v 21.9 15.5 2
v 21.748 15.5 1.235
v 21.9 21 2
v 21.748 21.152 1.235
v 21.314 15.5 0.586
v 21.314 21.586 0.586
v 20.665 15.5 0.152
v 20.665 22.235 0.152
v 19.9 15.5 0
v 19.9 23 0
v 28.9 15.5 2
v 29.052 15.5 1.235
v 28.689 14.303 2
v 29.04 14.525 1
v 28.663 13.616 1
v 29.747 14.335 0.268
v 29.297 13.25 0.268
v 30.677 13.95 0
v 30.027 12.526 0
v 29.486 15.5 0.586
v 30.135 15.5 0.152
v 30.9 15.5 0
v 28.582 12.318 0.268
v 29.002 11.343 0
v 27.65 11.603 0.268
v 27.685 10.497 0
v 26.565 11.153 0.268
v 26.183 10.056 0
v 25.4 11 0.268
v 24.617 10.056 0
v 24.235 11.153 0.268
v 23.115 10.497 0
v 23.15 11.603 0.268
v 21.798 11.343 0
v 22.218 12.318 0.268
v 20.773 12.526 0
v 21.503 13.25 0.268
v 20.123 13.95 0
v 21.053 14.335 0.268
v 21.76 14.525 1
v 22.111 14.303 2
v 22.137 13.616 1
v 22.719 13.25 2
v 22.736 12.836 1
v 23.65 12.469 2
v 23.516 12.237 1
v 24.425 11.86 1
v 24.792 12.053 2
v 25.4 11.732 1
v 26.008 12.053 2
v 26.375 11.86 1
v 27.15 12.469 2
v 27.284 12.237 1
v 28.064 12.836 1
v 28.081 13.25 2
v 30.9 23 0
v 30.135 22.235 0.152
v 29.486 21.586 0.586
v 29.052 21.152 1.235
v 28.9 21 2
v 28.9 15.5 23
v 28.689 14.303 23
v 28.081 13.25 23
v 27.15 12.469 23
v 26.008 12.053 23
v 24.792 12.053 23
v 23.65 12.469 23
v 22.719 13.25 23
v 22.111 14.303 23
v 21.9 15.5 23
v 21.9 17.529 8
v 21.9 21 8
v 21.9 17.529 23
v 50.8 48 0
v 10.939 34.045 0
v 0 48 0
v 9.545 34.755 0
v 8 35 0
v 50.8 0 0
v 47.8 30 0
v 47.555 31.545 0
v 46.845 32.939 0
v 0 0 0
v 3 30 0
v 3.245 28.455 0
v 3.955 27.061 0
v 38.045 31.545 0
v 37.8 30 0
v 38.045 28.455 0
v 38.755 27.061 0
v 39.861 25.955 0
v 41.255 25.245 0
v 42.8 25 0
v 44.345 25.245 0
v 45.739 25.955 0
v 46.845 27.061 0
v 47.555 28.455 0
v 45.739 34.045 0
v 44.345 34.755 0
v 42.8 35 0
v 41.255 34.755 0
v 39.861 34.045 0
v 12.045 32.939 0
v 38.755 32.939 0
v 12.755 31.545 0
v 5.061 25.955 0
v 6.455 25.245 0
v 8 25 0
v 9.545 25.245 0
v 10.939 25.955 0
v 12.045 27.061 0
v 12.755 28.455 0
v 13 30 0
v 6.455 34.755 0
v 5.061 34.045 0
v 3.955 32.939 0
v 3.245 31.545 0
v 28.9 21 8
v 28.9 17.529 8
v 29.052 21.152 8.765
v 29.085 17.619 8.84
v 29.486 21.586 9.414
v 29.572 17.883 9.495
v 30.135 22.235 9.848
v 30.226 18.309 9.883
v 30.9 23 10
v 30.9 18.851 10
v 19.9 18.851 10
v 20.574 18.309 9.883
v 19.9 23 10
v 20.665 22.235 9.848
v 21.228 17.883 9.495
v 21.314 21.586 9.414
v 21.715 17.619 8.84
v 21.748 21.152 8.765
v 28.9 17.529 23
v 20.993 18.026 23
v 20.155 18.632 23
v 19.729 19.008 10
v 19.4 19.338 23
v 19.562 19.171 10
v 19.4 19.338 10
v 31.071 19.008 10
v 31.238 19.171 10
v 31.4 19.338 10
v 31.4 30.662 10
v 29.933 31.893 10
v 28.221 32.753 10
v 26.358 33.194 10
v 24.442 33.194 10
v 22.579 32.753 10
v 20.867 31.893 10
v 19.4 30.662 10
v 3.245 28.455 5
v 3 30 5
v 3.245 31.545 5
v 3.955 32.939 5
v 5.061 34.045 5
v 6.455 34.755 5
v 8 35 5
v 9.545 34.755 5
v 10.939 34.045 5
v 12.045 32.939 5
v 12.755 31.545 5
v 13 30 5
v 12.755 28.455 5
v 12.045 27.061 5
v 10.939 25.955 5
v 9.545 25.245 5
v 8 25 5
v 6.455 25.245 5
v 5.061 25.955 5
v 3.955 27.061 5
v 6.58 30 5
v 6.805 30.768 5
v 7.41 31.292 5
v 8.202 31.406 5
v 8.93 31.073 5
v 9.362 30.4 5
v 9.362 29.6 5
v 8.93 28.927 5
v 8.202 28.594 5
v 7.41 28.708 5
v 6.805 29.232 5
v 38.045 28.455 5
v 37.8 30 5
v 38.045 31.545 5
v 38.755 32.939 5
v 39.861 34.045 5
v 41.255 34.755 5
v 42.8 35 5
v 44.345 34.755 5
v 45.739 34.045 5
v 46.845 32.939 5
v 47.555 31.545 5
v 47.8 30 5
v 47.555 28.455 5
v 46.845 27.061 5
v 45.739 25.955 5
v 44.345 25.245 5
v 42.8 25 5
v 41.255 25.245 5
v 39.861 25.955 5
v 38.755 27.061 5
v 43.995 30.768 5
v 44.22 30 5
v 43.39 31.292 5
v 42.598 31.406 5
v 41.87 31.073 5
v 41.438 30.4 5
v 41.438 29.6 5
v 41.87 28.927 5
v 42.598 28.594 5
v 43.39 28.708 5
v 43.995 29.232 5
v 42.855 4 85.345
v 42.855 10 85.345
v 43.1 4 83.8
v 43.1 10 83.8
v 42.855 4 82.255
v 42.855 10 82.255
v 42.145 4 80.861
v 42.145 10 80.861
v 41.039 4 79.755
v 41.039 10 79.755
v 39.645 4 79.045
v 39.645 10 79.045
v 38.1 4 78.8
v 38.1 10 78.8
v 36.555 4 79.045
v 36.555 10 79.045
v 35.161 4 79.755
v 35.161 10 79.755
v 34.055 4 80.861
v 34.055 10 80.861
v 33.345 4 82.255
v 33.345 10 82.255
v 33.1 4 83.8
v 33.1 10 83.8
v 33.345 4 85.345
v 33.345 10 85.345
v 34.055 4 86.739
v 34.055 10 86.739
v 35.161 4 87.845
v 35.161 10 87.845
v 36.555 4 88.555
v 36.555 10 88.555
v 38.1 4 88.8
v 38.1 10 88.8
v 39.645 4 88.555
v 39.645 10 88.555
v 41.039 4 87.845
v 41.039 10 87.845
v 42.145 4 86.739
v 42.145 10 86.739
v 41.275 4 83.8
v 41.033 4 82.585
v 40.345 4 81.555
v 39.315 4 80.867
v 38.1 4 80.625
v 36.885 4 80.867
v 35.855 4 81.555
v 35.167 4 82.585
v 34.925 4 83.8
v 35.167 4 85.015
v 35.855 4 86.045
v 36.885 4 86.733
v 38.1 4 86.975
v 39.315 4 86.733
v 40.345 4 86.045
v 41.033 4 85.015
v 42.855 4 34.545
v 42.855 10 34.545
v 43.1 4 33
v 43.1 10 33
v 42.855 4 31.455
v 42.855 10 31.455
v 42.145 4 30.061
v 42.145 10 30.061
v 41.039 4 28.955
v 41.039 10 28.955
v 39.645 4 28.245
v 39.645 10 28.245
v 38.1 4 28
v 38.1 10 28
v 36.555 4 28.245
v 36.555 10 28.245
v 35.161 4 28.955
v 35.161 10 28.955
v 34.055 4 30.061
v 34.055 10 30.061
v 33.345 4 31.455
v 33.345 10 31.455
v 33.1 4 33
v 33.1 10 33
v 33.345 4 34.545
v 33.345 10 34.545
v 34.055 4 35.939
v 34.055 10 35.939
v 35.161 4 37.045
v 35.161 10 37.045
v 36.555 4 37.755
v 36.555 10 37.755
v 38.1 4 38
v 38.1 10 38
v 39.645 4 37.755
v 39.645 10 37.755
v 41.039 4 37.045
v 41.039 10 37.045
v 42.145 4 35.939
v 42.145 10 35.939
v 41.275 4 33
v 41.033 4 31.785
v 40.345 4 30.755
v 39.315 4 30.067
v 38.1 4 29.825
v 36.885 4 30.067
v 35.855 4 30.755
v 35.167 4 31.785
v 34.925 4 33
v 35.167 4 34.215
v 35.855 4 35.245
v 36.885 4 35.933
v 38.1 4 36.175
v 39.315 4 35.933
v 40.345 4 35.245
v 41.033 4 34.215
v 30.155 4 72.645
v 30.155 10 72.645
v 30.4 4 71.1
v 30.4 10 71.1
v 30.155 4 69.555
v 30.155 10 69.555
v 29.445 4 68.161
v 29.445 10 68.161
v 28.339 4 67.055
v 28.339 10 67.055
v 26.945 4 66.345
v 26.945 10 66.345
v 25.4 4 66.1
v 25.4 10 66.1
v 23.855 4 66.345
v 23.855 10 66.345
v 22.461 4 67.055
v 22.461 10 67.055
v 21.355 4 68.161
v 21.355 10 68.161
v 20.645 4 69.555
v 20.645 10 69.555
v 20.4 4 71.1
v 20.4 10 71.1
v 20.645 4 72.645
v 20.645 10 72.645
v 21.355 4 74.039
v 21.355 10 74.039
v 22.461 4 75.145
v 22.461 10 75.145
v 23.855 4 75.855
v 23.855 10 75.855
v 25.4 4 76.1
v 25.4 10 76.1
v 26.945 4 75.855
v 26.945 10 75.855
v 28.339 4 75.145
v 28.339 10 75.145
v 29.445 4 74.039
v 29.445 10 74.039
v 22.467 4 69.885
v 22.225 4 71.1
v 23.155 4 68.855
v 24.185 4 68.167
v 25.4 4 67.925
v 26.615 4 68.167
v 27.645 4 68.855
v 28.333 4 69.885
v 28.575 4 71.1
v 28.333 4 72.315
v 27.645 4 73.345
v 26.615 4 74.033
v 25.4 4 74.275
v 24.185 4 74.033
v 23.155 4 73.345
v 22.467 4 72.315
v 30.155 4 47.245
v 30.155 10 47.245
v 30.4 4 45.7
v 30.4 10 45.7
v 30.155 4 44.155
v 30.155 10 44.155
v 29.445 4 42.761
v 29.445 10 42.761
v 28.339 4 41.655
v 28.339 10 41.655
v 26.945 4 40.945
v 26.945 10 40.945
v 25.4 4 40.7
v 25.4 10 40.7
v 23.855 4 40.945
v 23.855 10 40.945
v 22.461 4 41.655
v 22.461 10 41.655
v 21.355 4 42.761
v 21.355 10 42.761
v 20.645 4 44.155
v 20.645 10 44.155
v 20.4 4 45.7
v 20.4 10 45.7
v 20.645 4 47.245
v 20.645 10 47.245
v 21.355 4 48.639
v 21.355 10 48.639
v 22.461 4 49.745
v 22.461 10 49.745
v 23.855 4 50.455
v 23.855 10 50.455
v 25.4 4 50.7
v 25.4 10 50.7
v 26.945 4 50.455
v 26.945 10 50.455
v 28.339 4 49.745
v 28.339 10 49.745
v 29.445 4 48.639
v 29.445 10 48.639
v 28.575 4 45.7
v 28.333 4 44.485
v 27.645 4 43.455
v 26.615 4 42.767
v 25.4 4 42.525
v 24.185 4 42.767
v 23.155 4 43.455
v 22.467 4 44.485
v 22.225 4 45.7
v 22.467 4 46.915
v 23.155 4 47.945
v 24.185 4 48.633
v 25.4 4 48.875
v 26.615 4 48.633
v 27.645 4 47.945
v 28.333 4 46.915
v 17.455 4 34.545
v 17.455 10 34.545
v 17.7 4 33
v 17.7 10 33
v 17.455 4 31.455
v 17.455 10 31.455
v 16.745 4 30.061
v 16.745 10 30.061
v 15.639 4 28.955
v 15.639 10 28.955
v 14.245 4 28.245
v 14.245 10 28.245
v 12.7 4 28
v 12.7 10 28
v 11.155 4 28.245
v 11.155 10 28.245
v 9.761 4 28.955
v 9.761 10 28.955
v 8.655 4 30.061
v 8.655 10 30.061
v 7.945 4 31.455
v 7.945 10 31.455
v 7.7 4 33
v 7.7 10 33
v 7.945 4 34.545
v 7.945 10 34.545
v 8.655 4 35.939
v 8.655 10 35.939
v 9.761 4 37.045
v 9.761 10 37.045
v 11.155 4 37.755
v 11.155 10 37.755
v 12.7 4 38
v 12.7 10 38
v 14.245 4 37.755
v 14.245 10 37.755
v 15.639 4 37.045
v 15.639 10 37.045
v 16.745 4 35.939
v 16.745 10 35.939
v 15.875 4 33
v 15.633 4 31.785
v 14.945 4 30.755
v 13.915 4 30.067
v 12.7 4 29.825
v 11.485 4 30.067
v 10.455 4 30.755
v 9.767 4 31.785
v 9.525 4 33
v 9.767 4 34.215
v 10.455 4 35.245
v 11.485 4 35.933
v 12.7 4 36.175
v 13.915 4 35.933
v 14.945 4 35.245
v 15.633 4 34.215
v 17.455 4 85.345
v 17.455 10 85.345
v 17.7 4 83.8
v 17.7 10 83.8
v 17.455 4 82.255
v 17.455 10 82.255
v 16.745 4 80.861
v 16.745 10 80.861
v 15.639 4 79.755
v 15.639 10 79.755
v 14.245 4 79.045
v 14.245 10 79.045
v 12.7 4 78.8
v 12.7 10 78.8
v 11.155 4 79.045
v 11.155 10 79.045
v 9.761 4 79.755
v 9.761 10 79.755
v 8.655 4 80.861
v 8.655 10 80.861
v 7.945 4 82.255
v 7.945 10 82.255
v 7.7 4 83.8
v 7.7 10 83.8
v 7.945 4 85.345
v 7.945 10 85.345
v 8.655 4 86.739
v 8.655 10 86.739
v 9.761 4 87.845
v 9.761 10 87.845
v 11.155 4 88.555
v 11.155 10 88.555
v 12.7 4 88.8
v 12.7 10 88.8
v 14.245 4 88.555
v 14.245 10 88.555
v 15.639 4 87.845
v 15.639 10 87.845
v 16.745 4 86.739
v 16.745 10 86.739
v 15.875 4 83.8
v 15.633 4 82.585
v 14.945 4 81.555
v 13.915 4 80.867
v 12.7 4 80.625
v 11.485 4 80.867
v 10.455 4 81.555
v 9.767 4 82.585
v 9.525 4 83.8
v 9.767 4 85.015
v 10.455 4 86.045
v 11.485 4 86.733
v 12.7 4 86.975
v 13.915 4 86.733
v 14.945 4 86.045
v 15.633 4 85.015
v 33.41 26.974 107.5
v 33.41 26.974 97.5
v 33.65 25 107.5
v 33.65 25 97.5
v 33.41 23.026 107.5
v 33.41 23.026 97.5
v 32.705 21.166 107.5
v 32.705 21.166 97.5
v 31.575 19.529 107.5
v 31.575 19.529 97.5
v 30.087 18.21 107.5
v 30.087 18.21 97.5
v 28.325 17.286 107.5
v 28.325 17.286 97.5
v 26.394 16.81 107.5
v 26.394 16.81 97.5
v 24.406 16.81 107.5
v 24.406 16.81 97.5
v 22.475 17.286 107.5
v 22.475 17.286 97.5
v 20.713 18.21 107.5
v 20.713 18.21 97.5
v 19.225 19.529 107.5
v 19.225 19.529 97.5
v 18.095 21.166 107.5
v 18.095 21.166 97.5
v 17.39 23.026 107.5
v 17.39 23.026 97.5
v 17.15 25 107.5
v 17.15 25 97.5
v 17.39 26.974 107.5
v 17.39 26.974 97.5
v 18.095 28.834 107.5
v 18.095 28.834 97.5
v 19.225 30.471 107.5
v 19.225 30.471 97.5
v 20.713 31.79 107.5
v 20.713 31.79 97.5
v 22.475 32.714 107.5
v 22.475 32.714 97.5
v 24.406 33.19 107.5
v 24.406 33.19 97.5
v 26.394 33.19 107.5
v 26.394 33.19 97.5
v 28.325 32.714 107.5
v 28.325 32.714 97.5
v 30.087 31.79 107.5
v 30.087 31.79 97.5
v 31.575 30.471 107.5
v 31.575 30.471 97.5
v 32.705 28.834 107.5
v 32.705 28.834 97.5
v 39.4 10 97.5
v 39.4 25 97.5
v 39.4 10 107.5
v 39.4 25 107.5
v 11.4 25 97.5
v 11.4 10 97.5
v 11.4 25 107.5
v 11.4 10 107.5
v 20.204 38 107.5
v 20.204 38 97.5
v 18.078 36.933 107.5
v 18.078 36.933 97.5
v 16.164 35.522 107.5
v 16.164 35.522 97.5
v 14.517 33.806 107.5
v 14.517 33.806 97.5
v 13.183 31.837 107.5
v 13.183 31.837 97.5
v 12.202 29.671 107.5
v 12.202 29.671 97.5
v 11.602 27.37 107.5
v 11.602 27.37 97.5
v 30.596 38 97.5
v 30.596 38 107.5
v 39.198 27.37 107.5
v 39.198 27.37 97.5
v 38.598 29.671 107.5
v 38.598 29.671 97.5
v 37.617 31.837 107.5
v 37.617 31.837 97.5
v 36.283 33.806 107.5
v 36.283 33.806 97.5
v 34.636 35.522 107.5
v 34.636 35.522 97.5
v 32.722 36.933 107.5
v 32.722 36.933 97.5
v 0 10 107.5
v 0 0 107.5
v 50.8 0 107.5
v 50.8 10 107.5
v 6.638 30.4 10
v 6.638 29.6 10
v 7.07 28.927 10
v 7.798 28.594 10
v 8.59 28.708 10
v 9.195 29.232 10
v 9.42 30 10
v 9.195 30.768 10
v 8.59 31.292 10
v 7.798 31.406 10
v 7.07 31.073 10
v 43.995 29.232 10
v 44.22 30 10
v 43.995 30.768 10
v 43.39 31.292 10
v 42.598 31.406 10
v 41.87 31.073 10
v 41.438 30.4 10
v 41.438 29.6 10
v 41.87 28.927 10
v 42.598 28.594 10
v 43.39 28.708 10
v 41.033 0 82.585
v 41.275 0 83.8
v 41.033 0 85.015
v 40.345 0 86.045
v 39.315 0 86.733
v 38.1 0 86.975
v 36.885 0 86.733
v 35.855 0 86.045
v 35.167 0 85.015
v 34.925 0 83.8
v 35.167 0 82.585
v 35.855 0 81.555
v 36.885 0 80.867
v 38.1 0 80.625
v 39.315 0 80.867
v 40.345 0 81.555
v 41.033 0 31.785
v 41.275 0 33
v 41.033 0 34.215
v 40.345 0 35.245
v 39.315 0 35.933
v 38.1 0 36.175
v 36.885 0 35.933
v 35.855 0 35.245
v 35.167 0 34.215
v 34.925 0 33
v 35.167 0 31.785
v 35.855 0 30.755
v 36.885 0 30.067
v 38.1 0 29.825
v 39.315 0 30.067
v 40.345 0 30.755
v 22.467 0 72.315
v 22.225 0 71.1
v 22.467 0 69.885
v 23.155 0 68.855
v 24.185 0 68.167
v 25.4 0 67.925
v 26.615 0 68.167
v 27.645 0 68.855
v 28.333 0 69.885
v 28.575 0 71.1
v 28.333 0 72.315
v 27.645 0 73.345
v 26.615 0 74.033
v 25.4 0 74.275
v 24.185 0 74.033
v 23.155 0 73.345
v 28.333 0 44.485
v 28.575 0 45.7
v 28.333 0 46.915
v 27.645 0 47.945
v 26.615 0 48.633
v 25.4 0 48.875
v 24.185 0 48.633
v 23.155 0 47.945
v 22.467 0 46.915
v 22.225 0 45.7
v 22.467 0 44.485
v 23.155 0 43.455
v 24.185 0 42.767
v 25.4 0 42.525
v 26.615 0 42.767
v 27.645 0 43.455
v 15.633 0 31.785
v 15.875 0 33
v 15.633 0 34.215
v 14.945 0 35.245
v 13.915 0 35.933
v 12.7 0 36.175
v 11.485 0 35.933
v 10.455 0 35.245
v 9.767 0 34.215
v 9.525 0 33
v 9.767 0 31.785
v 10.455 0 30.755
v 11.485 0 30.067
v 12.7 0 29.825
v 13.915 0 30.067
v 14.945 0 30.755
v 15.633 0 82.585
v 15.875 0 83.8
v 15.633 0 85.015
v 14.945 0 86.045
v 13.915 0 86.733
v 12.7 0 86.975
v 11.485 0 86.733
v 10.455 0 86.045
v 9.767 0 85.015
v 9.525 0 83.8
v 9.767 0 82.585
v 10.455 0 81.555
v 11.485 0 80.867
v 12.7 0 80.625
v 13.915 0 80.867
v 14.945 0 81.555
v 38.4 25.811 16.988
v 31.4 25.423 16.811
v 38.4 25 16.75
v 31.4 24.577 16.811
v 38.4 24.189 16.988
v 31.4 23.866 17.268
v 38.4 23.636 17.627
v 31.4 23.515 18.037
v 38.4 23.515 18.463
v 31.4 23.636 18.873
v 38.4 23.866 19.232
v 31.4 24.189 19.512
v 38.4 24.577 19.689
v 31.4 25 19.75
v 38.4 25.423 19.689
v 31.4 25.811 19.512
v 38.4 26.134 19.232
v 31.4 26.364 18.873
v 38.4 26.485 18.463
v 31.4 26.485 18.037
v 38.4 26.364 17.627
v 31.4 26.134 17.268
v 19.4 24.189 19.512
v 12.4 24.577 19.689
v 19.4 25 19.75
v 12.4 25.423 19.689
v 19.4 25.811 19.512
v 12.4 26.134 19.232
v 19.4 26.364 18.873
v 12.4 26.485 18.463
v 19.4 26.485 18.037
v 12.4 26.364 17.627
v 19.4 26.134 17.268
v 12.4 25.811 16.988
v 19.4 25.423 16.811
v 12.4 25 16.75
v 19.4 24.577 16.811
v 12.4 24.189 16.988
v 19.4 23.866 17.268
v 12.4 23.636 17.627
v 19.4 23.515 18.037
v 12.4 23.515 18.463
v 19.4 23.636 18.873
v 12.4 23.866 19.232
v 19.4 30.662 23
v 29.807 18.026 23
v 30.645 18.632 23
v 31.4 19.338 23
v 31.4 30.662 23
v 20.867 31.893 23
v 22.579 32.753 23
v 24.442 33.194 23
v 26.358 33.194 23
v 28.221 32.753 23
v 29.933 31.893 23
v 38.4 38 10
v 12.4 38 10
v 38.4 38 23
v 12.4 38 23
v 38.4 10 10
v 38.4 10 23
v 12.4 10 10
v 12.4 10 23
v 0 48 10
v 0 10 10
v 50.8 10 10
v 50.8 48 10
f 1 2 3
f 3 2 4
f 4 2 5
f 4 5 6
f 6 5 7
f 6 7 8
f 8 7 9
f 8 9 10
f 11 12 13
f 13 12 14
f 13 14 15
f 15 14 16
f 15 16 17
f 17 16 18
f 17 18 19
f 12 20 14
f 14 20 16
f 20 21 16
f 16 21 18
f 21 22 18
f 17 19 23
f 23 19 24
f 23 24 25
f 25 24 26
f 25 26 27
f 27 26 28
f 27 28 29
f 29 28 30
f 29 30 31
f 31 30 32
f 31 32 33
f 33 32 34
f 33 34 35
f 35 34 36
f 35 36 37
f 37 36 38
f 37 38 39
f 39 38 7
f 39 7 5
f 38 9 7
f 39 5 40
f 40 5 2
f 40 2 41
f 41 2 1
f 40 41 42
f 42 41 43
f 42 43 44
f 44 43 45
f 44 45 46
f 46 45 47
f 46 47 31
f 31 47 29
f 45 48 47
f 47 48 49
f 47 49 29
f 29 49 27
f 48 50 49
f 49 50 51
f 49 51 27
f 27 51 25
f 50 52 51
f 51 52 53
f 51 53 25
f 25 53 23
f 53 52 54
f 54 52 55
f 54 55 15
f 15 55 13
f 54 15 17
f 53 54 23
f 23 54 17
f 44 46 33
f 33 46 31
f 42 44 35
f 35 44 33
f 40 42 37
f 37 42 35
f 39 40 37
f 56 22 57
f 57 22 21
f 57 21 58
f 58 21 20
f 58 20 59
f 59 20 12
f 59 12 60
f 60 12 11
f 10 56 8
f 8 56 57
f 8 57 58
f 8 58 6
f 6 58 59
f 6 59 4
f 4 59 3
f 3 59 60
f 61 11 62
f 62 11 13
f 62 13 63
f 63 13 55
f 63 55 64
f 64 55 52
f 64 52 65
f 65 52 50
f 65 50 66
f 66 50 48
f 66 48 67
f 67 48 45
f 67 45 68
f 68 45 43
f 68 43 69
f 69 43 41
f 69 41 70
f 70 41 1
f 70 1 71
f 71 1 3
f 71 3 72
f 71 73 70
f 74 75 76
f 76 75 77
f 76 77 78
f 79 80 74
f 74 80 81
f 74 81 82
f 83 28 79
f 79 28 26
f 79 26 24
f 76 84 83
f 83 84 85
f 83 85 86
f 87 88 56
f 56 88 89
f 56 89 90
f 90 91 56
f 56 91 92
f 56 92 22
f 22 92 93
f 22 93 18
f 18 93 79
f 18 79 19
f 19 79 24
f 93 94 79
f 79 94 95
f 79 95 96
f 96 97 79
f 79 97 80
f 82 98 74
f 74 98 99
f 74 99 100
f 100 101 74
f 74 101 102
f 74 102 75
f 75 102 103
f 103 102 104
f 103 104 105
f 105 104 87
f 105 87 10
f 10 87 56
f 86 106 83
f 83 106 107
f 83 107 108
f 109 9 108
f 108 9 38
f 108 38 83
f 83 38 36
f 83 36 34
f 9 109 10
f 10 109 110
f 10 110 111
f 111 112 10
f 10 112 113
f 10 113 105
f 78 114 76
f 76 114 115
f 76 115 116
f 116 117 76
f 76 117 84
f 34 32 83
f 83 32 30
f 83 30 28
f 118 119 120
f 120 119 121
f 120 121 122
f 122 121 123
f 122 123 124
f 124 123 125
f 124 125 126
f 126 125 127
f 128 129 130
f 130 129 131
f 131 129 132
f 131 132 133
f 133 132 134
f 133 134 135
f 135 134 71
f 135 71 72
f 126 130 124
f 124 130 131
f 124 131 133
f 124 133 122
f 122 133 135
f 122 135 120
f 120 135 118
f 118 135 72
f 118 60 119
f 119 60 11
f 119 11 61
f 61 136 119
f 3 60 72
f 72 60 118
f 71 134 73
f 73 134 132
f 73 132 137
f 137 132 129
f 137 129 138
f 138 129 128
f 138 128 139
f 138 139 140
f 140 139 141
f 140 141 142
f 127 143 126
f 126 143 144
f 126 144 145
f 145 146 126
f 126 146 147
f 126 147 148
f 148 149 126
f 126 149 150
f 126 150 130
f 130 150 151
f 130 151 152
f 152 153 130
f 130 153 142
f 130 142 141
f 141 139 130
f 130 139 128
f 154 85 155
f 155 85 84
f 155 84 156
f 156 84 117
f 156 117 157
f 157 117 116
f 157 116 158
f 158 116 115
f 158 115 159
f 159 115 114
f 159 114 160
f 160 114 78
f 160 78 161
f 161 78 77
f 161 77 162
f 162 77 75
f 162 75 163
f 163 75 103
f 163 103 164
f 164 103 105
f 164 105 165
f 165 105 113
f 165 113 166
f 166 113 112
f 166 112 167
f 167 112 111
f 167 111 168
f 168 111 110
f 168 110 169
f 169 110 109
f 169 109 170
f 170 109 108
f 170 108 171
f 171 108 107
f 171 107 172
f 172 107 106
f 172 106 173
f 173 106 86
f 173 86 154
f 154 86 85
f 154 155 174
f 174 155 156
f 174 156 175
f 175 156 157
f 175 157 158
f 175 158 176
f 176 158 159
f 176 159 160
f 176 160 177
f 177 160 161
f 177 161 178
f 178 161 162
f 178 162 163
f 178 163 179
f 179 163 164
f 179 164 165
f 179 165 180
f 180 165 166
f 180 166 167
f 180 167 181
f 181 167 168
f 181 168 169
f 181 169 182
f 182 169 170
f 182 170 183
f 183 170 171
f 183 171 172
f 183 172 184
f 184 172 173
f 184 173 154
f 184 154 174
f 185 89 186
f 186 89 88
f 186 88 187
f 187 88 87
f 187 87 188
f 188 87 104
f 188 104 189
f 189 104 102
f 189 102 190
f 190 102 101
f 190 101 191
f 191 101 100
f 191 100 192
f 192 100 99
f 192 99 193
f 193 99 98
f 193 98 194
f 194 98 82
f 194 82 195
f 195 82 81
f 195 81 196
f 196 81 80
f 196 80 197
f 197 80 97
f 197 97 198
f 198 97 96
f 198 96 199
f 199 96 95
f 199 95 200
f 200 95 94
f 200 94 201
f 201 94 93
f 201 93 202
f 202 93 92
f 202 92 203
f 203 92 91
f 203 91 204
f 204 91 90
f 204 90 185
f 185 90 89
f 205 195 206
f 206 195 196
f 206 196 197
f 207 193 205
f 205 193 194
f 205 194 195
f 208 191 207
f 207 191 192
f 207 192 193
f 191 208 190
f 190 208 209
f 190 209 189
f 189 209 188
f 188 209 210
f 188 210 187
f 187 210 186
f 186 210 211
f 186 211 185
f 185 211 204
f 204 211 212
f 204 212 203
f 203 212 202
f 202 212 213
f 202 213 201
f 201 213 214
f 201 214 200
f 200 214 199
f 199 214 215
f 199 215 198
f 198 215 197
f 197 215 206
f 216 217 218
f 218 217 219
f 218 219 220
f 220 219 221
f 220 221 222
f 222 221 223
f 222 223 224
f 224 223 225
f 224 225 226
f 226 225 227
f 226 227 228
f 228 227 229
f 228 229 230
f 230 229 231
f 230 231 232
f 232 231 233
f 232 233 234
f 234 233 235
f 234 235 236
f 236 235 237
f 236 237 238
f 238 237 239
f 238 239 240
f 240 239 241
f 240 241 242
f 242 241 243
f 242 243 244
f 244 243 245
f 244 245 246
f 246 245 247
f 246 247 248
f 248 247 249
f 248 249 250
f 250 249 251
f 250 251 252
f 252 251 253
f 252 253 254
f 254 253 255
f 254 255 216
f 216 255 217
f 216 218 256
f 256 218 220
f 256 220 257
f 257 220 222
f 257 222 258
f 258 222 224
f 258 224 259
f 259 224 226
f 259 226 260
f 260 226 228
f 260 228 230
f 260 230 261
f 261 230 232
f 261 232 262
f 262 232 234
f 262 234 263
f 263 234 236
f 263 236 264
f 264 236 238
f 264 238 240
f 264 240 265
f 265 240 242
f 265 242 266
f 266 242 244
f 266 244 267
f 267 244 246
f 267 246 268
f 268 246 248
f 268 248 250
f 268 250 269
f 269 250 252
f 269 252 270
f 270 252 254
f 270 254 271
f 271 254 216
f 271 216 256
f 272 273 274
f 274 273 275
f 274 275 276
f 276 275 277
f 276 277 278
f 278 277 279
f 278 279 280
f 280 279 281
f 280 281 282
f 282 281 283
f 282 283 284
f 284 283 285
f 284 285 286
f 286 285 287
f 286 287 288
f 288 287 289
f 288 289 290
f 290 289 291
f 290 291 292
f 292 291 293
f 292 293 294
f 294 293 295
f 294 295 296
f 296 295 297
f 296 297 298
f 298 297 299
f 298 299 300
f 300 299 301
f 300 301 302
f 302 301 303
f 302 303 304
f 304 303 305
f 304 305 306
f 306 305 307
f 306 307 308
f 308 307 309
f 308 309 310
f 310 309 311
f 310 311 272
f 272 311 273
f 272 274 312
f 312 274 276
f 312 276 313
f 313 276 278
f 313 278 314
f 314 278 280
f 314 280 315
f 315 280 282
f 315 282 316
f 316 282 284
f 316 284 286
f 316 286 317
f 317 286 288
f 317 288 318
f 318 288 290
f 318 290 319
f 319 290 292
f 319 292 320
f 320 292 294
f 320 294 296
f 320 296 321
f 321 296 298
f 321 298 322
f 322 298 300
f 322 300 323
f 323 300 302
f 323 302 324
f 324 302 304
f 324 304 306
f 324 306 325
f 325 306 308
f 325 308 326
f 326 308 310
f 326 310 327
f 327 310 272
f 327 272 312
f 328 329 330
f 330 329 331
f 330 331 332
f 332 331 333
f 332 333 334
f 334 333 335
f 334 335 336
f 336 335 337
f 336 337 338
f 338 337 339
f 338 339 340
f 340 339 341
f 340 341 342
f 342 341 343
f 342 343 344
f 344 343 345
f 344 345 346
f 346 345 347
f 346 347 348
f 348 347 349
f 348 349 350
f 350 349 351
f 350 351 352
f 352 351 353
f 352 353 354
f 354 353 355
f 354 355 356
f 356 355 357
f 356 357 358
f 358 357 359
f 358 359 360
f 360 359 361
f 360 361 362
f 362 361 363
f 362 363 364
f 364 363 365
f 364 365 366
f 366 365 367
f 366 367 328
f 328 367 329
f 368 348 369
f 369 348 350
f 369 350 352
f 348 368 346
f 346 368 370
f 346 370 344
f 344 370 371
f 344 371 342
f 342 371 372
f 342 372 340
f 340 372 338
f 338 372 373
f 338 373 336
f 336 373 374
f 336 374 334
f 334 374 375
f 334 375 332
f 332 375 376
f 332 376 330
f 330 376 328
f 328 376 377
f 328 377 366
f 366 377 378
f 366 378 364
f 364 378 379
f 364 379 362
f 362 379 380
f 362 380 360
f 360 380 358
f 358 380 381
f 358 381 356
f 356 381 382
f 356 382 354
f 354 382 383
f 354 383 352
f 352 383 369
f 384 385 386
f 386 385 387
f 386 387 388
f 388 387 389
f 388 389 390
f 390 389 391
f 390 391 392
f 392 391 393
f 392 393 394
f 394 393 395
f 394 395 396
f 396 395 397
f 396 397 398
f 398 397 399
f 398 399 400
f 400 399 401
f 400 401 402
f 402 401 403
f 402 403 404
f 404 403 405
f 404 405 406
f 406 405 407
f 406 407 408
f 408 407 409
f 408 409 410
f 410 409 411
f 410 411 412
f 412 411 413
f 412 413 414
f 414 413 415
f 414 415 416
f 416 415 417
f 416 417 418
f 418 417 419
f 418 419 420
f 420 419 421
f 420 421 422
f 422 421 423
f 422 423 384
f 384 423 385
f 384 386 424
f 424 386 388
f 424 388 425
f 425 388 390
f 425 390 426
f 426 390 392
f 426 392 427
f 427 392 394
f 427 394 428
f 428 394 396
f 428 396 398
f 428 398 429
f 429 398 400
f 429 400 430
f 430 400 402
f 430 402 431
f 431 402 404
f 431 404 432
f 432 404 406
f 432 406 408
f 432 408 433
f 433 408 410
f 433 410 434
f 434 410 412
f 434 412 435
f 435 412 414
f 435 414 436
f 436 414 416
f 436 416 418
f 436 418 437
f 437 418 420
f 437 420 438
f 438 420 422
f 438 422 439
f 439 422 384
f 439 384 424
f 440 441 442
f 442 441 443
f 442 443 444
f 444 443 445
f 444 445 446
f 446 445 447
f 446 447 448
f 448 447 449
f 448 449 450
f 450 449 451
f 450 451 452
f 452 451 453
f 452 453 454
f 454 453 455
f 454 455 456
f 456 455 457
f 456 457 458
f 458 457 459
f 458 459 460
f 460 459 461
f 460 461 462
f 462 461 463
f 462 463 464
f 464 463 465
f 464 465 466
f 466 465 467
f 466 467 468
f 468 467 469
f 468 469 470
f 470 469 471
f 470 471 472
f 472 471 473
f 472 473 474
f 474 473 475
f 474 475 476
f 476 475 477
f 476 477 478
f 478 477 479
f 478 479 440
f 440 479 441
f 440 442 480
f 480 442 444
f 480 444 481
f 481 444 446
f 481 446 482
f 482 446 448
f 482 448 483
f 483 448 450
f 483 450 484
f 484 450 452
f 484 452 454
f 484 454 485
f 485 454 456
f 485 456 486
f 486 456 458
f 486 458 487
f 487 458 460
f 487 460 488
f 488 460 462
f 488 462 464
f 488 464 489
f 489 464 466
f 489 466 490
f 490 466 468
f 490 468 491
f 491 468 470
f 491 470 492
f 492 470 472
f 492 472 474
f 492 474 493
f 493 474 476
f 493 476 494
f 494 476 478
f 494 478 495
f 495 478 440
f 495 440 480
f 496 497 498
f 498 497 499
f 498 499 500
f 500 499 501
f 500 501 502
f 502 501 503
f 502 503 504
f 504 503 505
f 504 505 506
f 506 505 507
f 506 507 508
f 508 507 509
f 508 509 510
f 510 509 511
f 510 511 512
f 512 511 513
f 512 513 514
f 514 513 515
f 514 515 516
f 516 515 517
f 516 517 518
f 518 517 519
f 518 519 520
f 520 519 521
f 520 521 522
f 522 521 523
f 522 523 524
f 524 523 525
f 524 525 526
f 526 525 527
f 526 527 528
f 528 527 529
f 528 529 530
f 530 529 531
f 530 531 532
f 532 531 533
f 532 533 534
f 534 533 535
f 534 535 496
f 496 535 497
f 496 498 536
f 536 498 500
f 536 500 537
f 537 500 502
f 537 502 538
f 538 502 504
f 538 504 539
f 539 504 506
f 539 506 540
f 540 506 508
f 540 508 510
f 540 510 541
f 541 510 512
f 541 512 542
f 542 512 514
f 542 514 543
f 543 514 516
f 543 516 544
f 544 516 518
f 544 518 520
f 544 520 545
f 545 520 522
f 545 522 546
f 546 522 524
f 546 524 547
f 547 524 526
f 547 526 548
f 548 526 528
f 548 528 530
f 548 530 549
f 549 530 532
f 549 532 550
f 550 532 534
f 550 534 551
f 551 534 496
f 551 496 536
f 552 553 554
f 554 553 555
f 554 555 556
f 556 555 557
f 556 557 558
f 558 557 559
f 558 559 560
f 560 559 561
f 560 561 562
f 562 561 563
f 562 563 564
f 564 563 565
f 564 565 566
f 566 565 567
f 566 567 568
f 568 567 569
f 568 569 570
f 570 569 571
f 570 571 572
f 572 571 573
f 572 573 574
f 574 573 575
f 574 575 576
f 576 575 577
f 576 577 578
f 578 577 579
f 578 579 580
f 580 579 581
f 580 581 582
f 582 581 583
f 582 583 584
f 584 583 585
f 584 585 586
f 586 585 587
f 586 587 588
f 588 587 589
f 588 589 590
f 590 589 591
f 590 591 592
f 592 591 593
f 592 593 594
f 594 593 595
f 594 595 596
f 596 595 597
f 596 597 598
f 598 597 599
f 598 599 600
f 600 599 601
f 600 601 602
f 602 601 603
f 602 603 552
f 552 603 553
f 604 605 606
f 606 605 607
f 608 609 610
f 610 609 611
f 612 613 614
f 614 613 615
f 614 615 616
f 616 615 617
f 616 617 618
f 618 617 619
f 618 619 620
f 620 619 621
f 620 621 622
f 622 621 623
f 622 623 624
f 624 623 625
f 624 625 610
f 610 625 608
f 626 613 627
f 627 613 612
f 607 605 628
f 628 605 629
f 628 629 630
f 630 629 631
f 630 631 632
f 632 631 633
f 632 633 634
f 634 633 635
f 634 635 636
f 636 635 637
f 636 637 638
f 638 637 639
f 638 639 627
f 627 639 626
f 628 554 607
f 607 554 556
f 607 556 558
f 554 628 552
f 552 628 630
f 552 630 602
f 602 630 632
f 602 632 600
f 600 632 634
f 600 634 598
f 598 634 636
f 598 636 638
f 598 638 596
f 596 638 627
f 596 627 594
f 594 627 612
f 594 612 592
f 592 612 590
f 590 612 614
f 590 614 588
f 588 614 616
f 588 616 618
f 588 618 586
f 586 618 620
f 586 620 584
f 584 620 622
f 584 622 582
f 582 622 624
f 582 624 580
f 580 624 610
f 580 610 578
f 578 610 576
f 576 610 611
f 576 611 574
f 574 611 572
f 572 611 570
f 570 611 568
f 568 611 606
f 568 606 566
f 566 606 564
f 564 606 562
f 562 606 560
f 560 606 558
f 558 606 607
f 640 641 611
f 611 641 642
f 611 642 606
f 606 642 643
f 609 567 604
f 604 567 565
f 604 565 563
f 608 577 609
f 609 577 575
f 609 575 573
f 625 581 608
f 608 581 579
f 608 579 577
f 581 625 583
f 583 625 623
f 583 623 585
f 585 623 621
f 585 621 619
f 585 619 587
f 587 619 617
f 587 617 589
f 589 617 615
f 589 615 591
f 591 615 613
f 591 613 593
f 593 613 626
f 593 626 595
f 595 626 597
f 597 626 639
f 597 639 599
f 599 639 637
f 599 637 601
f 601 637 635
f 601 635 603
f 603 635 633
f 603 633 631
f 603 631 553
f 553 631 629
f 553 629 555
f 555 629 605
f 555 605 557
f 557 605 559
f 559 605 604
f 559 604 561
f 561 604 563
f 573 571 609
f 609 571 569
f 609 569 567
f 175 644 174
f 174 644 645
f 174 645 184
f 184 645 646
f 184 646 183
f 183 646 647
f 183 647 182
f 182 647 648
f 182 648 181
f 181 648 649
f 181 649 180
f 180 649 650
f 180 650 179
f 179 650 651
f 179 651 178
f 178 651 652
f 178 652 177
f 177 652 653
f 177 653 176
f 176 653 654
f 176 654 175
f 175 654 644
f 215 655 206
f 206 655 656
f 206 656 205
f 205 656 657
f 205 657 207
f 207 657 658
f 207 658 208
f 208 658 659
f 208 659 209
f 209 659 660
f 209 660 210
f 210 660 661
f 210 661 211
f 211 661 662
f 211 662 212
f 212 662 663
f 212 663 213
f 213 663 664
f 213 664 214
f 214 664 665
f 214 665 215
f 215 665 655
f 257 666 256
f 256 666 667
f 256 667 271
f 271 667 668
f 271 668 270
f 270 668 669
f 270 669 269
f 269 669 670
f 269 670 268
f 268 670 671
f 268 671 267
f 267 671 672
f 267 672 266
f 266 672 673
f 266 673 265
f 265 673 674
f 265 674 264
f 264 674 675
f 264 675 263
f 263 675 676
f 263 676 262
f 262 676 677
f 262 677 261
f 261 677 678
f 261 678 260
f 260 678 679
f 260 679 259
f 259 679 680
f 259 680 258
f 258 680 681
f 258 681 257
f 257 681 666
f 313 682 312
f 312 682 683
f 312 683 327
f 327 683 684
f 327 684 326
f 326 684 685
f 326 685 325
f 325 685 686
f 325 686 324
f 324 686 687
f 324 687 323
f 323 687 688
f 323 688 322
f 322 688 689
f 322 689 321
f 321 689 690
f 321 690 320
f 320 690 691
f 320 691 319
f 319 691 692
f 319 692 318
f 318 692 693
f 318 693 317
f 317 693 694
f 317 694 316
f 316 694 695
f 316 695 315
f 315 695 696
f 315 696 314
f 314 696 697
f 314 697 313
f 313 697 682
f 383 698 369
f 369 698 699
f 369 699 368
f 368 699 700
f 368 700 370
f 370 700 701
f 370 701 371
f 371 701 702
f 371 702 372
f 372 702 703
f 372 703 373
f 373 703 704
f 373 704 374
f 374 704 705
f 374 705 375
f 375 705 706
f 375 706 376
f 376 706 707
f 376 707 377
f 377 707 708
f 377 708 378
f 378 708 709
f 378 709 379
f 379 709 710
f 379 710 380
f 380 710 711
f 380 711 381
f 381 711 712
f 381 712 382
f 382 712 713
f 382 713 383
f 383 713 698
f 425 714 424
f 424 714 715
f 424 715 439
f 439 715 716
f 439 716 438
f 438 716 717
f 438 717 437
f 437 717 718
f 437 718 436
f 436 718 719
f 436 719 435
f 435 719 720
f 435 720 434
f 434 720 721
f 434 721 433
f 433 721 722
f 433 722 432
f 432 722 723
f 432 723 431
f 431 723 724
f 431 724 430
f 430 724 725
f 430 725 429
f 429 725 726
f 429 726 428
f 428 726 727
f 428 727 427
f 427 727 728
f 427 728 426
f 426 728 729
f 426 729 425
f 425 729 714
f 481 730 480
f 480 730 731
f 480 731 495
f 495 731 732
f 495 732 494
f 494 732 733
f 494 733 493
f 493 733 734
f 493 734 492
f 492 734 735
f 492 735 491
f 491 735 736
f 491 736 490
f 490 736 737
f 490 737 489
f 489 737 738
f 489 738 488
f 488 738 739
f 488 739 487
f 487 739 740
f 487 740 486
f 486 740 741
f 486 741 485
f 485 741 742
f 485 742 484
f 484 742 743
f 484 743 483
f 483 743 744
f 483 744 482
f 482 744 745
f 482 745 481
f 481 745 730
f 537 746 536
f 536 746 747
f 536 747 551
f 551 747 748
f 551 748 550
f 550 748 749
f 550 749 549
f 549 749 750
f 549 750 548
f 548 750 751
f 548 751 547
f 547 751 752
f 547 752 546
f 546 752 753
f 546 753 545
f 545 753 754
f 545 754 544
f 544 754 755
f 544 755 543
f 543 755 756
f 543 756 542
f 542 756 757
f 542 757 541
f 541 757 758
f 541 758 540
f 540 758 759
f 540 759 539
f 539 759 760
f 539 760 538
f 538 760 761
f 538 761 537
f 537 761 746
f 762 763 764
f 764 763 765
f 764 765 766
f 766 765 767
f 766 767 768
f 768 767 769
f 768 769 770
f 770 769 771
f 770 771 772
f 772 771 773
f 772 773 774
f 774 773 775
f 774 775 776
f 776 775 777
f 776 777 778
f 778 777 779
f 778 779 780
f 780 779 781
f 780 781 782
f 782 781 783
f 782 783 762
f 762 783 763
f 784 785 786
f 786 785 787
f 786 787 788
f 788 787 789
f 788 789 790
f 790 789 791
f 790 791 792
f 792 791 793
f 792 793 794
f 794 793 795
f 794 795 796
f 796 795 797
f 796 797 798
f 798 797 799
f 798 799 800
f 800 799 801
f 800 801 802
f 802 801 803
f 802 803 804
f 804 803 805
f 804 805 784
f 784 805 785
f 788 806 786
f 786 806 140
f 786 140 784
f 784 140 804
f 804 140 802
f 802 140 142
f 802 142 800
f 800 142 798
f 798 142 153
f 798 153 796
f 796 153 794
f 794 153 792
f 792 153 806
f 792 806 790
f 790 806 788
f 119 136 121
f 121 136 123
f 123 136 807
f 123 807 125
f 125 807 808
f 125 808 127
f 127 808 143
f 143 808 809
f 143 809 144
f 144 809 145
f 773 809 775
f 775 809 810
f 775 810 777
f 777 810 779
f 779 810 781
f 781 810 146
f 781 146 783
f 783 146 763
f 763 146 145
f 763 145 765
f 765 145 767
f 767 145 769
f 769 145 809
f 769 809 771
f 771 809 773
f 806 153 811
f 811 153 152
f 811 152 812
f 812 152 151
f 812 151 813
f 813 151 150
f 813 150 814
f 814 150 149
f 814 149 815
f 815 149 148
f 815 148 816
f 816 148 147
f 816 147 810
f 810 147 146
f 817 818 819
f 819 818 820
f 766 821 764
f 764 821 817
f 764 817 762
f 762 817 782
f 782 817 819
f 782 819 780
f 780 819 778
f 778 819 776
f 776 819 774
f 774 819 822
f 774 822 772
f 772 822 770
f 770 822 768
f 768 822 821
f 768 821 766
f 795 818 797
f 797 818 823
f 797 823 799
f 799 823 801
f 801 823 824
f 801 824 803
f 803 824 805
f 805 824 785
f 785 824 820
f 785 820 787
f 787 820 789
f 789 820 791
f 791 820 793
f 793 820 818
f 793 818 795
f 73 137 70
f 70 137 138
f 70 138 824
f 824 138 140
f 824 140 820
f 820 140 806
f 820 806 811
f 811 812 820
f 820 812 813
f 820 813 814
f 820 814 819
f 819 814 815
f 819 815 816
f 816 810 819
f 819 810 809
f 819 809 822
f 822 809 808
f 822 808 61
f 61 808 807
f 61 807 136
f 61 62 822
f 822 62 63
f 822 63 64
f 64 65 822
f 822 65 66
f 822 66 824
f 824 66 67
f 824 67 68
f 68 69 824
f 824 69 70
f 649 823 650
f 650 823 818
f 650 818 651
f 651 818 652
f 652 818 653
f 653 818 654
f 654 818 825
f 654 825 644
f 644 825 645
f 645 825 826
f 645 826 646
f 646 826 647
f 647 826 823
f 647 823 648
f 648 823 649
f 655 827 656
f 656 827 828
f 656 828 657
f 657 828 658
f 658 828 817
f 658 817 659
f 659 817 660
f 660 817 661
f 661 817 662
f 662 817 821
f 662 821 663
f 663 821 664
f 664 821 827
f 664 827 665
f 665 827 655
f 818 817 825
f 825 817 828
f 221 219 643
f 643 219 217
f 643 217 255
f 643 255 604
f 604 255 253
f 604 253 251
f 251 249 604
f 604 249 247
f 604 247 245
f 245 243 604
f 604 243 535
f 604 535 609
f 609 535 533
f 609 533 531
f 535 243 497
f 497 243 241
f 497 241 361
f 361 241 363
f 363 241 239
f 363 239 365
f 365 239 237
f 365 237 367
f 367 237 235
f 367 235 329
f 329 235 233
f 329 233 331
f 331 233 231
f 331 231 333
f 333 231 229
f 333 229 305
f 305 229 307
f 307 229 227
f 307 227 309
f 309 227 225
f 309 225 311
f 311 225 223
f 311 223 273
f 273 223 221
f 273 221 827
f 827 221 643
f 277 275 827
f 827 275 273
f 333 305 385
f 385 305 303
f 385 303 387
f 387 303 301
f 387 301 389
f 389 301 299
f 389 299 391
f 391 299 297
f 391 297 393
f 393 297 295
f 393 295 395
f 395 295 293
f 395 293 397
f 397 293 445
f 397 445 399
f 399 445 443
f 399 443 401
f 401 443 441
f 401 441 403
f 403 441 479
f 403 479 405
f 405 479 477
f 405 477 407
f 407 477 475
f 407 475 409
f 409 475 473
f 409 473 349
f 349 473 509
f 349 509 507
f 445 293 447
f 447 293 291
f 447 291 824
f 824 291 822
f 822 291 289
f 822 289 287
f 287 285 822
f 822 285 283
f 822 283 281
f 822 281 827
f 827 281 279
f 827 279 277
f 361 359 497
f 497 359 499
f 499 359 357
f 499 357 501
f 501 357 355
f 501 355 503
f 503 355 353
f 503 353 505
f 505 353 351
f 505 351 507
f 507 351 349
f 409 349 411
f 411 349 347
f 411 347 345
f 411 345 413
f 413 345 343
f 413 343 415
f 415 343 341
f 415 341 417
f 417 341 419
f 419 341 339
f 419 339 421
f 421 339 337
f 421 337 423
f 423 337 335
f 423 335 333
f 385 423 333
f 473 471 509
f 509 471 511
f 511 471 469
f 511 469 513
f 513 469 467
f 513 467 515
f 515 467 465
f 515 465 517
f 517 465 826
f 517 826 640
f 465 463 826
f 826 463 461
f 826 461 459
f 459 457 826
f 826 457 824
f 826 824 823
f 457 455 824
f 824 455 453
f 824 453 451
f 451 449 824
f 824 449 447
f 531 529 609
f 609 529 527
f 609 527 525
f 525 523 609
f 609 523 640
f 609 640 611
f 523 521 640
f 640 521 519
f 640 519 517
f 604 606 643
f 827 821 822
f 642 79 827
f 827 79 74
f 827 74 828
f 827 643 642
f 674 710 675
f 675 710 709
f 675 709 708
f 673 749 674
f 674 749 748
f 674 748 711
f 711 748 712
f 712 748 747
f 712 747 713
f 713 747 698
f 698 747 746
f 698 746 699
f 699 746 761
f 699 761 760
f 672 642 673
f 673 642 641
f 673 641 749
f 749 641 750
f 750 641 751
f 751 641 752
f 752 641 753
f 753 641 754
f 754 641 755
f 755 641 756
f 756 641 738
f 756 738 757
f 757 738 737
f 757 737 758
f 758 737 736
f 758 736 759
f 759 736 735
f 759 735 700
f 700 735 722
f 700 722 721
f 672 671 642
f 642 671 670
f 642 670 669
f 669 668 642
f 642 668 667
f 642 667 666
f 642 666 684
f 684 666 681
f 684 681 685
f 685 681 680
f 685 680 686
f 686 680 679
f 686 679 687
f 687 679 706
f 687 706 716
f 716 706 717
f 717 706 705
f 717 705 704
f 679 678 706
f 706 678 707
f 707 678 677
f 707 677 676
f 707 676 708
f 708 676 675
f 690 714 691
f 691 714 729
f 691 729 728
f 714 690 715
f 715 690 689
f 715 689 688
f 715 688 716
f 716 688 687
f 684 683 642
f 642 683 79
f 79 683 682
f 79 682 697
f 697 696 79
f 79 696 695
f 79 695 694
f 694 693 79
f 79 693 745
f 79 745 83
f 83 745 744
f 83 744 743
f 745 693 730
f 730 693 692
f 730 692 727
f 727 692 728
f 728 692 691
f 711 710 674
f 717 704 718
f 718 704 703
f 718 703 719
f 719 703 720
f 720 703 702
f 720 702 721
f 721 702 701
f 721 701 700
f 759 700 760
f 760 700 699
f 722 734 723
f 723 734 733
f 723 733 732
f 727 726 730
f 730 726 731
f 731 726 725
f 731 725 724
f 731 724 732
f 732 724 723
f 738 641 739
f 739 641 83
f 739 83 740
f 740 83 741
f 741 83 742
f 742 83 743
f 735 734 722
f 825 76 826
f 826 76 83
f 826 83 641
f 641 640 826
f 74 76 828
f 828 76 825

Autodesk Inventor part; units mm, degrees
ref_plane "YZ Plane" through (0, 0, 0) normal (1, 0, 0) x (0, 1, 0)
ref_plane "XZ Plane" through (0, 0, 0) normal (0, 1, 0) x (-1, 0, 0)
sketch "Sketch1" plane through (0, 0, 0) normal (0, 0, 1) x (1, 0, 0)
  line L0 (0, 0) -> (0, 4)
  line L1 (0, 4) -> (0, 10)
  line L2 (0, 10) -> (0, 38)
  line L3 (0, 38) -> (0, 48)
  line L4 (0, 0) -> (50.8, 0)
  line L5 (50.8, 0) -> (50.8, 48)
  line L6 (50.8, 48) -> (0, 48)
  dimension "d1" = 4
  dimension "d2" = 6
  dimension "d3" = 28
  dimension "d4" = 10
  dimension "d5" = 50.8
extrude "Extrusion1" add sketch "Sketch1" along normal blind 10
sketch "Sketch2" plane through (0, 0, 10) normal (0, 0, 1) x (1, 0, 0)
  line L0 (50.8, 48) -> (0, 48) projected
  line L1 (0, 48) -> (0, 0) projected
  line L2 (0, 0) -> (50.8, 0) projected
  line L3 (50.8, 0) -> (50.8, 48) projected
  line L4 (0, 0) -> (50.8, 0)
  line L5 (50.8, 0) -> (50.8, 10)
  line L6 (50.8, 10) -> (0, 10)
  line L7 (0, 10) -> (0, 0)
  point P0 (0, 10)
  dimension "d8" = 10
extrude "Extrusion2" add sketch "Sketch2" along normal blind 87.5 contours L3 L2 L1 L6
sketch "Sketch3" plane through (0, 0, 10) normal (0, 0, 1) x (1, 0, 0)
  line L0 (0, 10) -> (50.8, 10) projected
  line L1 (50.8, 10) -> (50.8, 48) projected
  line L2 (50.8, 48) -> (0, 48) projected
  line L3 (0, 48) -> (0, 10) projected
  line L4 (12.4, 12) -> (38.4, 12)
  line L5 (38.4, 12) -> (38.4, 38)
  line L6 (38.4, 38) -> (12.4, 38)
  line L7 (12.4, 38) -> (12.4, 12)
  line L8 (50.8, 10) -> (0, 10) projected
  line L9 (38.4, 10) -> (12.4, 10)
  line L10 (12.4, 12) -> (38.4, 12)
  line L11 (38.4, 12) -> (38.4, 10)
  line L12 (38.4, 10) -> (12.4, 10)
  line L13 (12.4, 10) -> (12.4, 12)
  arc A0 (28.9, 20.1266) -> (21.9, 20.1266) centre (25.4, 25) ccw
  line L14 (19.4, 30.6624) -> (19.4, 19.3376)
  line L15 (31.4, 30.6624) -> (31.4, 19.3376)
  line L16 (23.3844, 17) -> (27.4156, 17)
  arc A1 (19.4, 19.3376) -> (23.3844, 17) centre (25.4, 25) ccw
  arc A2 (27.4156, 17) -> (31.4, 19.3376) centre (25.4, 25) ccw
  arc A3 (21.9, 18) -> (28.9, 18) centre (25.4, 18) ccw
  line L17 (21.9, 18) -> (28.9, 18)
  line L18 (28.9, 18) -> (28.9, 20.1266)
  line L19 (21.9, 20.1266) -> (21.9, 18)
  circle A4 centre (25.4, 25) radius 8.25
  point P0 (0, 0)
  point P1 (25.4, 10)
  point P2 (25.4, 12)
  point P3 (38.4, 25)
  point P4 (12.4, 25)
  point P5 (25.4, 38)
  point P6 (19.4, 25)
  point P7 (28.866, 17.5134)
  point P8 (21.934, 17.5134)
  dimension "d12" = 0
  dimension "d13" = 26
  dimension "d14" = 26
  dimension "d19" = 10
  dimension "d22" = 0
  dimension "d23" = 0
  dimension "d25" = 12
  dimension "d26" = 0
  dimension "d27" = 0
  dimension "d28" = 7
  dimension "d29" = 0
  dimension "d31" = 7
  dimension "d32" = 16.5
extrude "Extrusion3" add sketch "Sketch3" along normal blind 13 contours L13 L4 L11 L0 | L7 L6 L5 L4 | L15 A4 | L14 A4
ref_plane "Work Plane1" through (25.4, 10, 10) normal (1, 0, 0) x (0, 0, -1)
sketch "Sketch4" plane through (25.4, 10, 10) normal (1, 0, 0) x (0, 0, -1)
  line L0 (0, 20.6624) -> (0, 9.3376) projected
  line L1 (0, 20.6624) -> (-13, 20.6624) projected
  line L2 (-13, 9.3376) -> (-13, 20.6624) projected
  line L3 (0, 9.3376) -> (-13, 9.3376) projected
  circle A0 centre (-8.25, 15) radius 1.5
  point P0 (10, -10)
  point P1 (-13, 15)
  dimension "d34" = 0
  dimension "d35" = 8.25
  dimension "d36" = 3
extrude "Extrusion4" cut sketch "Sketch4" along normal mid plane 26 contours A0
sketch "Sketch5" plane through (0, 10, 97.5) normal (0, 1, 0) x (1, 0, 0)
  line L0 (12.4, 74.5) -> (12.4, 87.5) projected
  line L1 (0, 87.5) -> (12.4, 87.5) projected
  line L2 (0, 87.5) -> (0, 0) projected
  line L3 (50.8, 0) -> (0, 0) projected
  line L4 (50.8, 87.5) -> (50.8, 0) projected
  line L5 (38.4, 87.5) -> (50.8, 87.5) projected
  line L6 (38.4, 87.5) -> (38.4, 74.5) projected
  line L7 (38.4, 74.5) -> (12.4, 74.5) projected
  circle A0 centre (25.4, 51.8) radius 3.175
  line L8 (50.8, 87.5) -> (0, 87.5) projected
  circle A1 centre (12.7, 64.5) radius 3.175
  circle A2 centre (38.1, 64.5) radius 3.175
  line L9 (-10.8452, 39.1) -> (75.4395, 39.1)
  circle A3 centre (25.4, 26.4) radius 3.175
  circle A4 centre (12.7, 13.7) radius 3.175
  circle A5 centre (38.1, 13.7) radius 3.175
  point P0 (0, 97.5)
  point P1 (25.4, 0)
  dimension "d39" = 35.7
  dimension "d40" = 0
  dimension "d41" = 6.35
  dimension "d42" = 12.7
  dimension "d43" = 12.7
  dimension "d44" = 12.7
  dimension "d45" = 12.7
  dimension "d46" = 12.7
  dimension "d73" = 6.35
  dimension "d74" = 6.35
extrude "Extrusion5" cut sketch "Sketch5" against normal blind 26 contours A0 | A1 | A2 | A3 | A4 | A5
sketch "Sketch6" plane through (0, 0, 0) normal (0, 0, -1) x (-1, 0, 0)
  line L0 (-12.4, 10) -> (-12.4, 38) projected
  line L1 (-12.4, 38) -> (-38.4, 38) projected
  line L2 (-38.4, 38) -> (-38.4, 10) projected
  line L3 (-38.4, 10) -> (-50.8, 10) projected
  line L4 (-50.8, 10) -> (-50.8, 48) projected
  line L5 (-50.8, 48) -> (0, 48) projected
  line L6 (0, 48) -> (0, 10) projected
  line L7 (0, 10) -> (-12.4, 10) projected
  circle A0 centre (-42.8, 30) radius 1.42
  line L8 (-25.4, -18.8015) -> (-25.4, 63.6237)
  circle A1 centre (-8, 30) radius 1.42
  point P0 (0, 0)
  point P1 (-25.4, 48)
  dimension "d49" = 0
  dimension "d50" = 8
  dimension "d51" = 8
  dimension "d52" = 2.84
extrude "Extrusion6" cut sketch "Sketch6" against normal blind 26 contours A0 | A1
sketch "Sketch7" plane through (0, 0, 97.5) normal (0, 0, 1) x (1, 0, 0)
  line L0 (0, 10) -> (0, 0) projected
  line L1 (0, 0) -> (50.8, 0) projected
  line L2 (50.8, 0) -> (50.8, 10) projected
  line L3 (50.8, 10) -> (0, 10) projected
  line L4 (12.4, 38) -> (12.4, 10) projected
  line L5 (38.4, 10) -> (12.4, 10) projected
  line L6 (38.4, 10) -> (38.4, 38) projected
  line L7 (38.4, 38) -> (12.4, 38) projected
  arc A0 (31.4, 30.6624) -> (19.4, 30.6624) centre (25.4, 25) ccw projected
  line L8 (31.4, 30.6624) -> (31.4, 19.3376) projected
  arc A1 (28.866, 17.5134) -> (31.4, 19.3376) centre (25.4, 25) ccw projected
  arc A2 (21.934, 17.5134) -> (28.866, 17.5134) centre (25.4, 18) ccw projected
  arc A3 (19.4, 19.3376) -> (21.934, 17.5134) centre (25.4, 25) ccw projected
  line L9 (19.4, 19.3376) -> (19.4, 30.6624) projected
  circle A4 centre (25.4, 25) radius 14
  circle A5 centre (25.4, 25) radius 8.25
  line L10 (11.4, 25) -> (11.4, 10)
  line L11 (39.4, 25) -> (39.4, 10)
  line L12 (0, 10) -> (50.8, 10)
  line L13 (50.8, 10) -> (50.8, 0)
  line L14 (50.8, 0) -> (0, 0)
  line L15 (0, 0) -> (0, 10)
  circle A6 centre (8, 30) radius 1.42 projected
  circle A7 centre (42.8, 30) radius 1.42 projected
  line L16 (12.4, 10) -> (12.4, 38) projected
  line L17 (12.4, 38) -> (38.4, 38) projected
  line L18 (38.4, 38) -> (38.4, 10) projected
  line L19 (38.4, 10) -> (50.8, 10) projected
  line L20 (50.8, 10) -> (50.8, 48) projected
  line L21 (50.8, 48) -> (0, 48) projected
  line L22 (0, 48) -> (0, 10) projected
  line L23 (0, 10) -> (12.4, 10) projected
  circle A8 centre (8, 30) radius 3
  circle A9 centre (42.8, 30) radius 3
  line L24 (12.4, 38) -> (38.4, 38)
  line L25 (38.4, 38) -> (38.4, 42.0795)
  line L26 (38.4, 42.0795) -> (12.4, 42.0795)
  line L27 (12.4, 42.0795) -> (12.4, 38)
  point P0 (30.5962, 38)
  point P1 (20.2038, 38)
  dimension "d55" = 28
  dimension "d56" = 16.5
  dimension "d57" = 6
  dimension "d58" = 6
extrude "Extrusion7" add sketch "Sketch7" along normal blind 10 contours L3 L2 L1 L0 | L10 A4 L4 L3 | L4 A4 L6 L3 | A4 L4 | L6 A4 L11 L3 | L4 A4 L7 L6 | L6 A4 | A2 A5
sketch "Sketch8" plane through (0, 10, 10) normal (0, 1, 0) x (1, 0, 0)
  circle A0 centre (38.1, -73.8) radius 3.175 projected
  circle A1 centre (38.1, -23) radius 3.175 projected
  circle A2 centre (25.4, -61.1) radius 3.175 projected
  circle A3 centre (25.4, -35.7) radius 3.175 projected
  circle A4 centre (12.7, -23) radius 3.175 projected
  circle A5 centre (12.7, -73.8) radius 3.175 projected
  line L0 (12.4, -13) -> (12.4, 0) projected
  line L1 (0, 0) -> (12.4, 0) projected
  line L2 (0, 0) -> (0, -97.5) projected
  line L3 (11.4, -97.5) -> (0, -97.5) projected
  line L4 (11.4, -87.5) -> (11.4, -97.5) projected
  line L5 (39.4, -87.5) -> (11.4, -87.5) projected
  line L6 (39.4, -87.5) -> (39.4, -97.5) projected
  line L7 (50.8, -97.5) -> (39.4, -97.5) projected
  line L8 (50.8, 0) -> (50.8, -97.5) projected
  line L9 (38.4, 0) -> (50.8, 0) projected
  line L10 (38.4, 0) -> (38.4, -13) projected
  line L11 (38.4, -13) -> (12.4, -13) projected
  circle A6 centre (25.4, -35.7) radius 5
  circle A7 centre (12.7, -23) radius 5
  circle A8 centre (38.1, -23) radius 5
  circle A9 centre (25.4, -61.1) radius 5
  circle A10 centre (12.7, -73.8) radius 3.175 projected
  circle A11 centre (12.7, -73.8) radius 5
  circle A12 centre (38.1, -73.8) radius 5
  point P0 (0, 10)
  dimension "d61" = 10
  dimension "d62" = 10
  dimension "d63" = 10
  dimension "d64" = 10
  dimension "d65" = 10
  dimension "d66" = 10
extrude "Extrusion8" cut sketch "Sketch8" against normal blind 6 contours A2 | A6 | A7 | A8 | A9 | A11 | A12
sketch "Sketch9" plane through (0, 0, 0) normal (0, 0, -1) x (-1, 0, 0)
  circle A0 centre (-8, 30) radius 1.42 projected
  circle A1 centre (-42.8, 30) radius 1.42 projected
  line L0 (-50.8, 48) -> (0, 48) projected
  line L1 (-50.8, 0) -> (-50.8, 48) projected
  line L2 (0, 0) -> (-50.8, 0) projected
  line L3 (0, 48) -> (0, 0) projected
  circle A2 centre (-42.8, 30) radius 5
  circle A3 centre (-8, 30) radius 5
  dimension "d69" = 10
  dimension "d70" = 10
extrude "Extrusion9" cut sketch "Sketch9" against normal blind 5 contours A1 | A2 | A3
sketch "Sketch10" plane through (0, 0, 23) normal (0, 0, 1) x (1, 0, 0)
  line L0 (12.4, 38) -> (12.4, 10) projected
  line L1 (38.4, 10) -> (12.4, 10) projected
  line L2 (38.4, 10) -> (38.4, 38) projected
  line L3 (38.4, 38) -> (12.4, 38) projected
  arc A0 (31.4, 30.6624) -> (19.4, 30.6624) centre (25.4, 25) ccw projected
  line L4 (31.4, 30.6624) -> (31.4, 19.3376) projected
  arc A1 (28.866, 17.5134) -> (31.4, 19.3376) centre (25.4, 25) ccw projected
  arc A2 (21.934, 17.5134) -> (28.866, 17.5134) centre (25.4, 18) ccw projected
  arc A3 (19.4, 19.3376) -> (21.934, 17.5134) centre (25.4, 25) ccw projected
  line L5 (19.4, 19.3376) -> (19.4, 30.6624) projected
  circle A4 centre (25.4, 15.5) radius 3.5
  line L6 (21.9, 15.5) -> (28.9, 15.5)
  line L7 (28.9, 15.5) -> (28.9, 21)
  line L8 (28.9, 21) -> (21.9, 21)
  line L9 (21.9, 21) -> (21.9, 15.5)
  point P0 (0, 0)
  dimension "d75" = 7
  dimension "d76" = 5.5
  dimension "d77" = 0
  dimension "d78" = 7
  dimension "d79" = 5.5
extrude "Extrusion10" cut sketch "Sketch10" against normal through all contours L7 A4 A2 A1 | A1 A2 A4 A3 L9 L8 L7 | A3 A2 A4 L9 | L6 A2 A4 | A4 L6 A2 | A4 A2 L6 | A2 L6 A4 | A2 L6
fillet "Fillet1" radius 2 7 edges at (25.4, 21, 10) (21.9, 19.2646, 10) (28.9, 19.2646, 10) (28.9, 18.25, 0) (21.9, 18.25, 0) (25.4, 12, 0) (25.4, 21, 0)
equation "\"d4\" = Thick_Wall"
equation "\"d5\" = Platform_Width"
equation "\"d6\" = Thick_Wall"
equation "\"d8\" = d1 + d2"
equation "\"d19\" = Thick_Wall"
equation "\"d41\" = Tabletop_Hole_Diameter"
equation "\"d42\" = d43"
equation "\"d43\" = 0.5 * Tabletop_Hole_Spacing"
equation "\"d44\" = d43"
equation "\"d45\" = d43"
equation "\"d46\" = d43"
equation "\"d73\" = d41"
equation "\"d74\" = d41"
equation "\"d57\" = Guide_Rod_Diameter"
equation "\"d58\" = Guide_Rod_Diameter"
equation "\"d59\" = Thick_Wall"
equation "\"d62\" = d61"
equation "\"d63\" = d61"
equation "\"d64\" = d61"
equation "\"d65\" = d61"
equation "\"d66\" = d61"
equation "\"d67\" = d2"
equation "\"d71\" = 0.5 * Thick_Wall"
equation "\"d78\" = d75"
equation "\"Platform_Width\" = 50.8"
equation "\"Platform_Length\" = 245"
equation "\"Guide_Hole_Offset\" = 13.51"
equation "\"Guide_Rod_Diameter\" = 6"
equation "\"Guide_Rod_Length\" = 304.8"
equation "\"Thin_Wall\" = 5"
equation "\"Thick_Wall\" = 10"
equation "\"Tabletop_Hole_Spacing\" = 25.4"
equation "\"Tabletop_Hole_Diameter\" = 6.35"
equation "\"Platform_Hole_Spacing\" = 25.4"
equation "\"Platform_Hole_Diameter\" = 6.35"
equation "\"d15\" = Thin_Wall"
equation "\"d17\" = d15"
equation "\"Actuator_Housing_W\" = 26"
equation "\"Sliding_Clearance\" = 2"
equation "\"Platform_GuideRod_OD\" = 16.5"
properties part number "Actuator Mount"
